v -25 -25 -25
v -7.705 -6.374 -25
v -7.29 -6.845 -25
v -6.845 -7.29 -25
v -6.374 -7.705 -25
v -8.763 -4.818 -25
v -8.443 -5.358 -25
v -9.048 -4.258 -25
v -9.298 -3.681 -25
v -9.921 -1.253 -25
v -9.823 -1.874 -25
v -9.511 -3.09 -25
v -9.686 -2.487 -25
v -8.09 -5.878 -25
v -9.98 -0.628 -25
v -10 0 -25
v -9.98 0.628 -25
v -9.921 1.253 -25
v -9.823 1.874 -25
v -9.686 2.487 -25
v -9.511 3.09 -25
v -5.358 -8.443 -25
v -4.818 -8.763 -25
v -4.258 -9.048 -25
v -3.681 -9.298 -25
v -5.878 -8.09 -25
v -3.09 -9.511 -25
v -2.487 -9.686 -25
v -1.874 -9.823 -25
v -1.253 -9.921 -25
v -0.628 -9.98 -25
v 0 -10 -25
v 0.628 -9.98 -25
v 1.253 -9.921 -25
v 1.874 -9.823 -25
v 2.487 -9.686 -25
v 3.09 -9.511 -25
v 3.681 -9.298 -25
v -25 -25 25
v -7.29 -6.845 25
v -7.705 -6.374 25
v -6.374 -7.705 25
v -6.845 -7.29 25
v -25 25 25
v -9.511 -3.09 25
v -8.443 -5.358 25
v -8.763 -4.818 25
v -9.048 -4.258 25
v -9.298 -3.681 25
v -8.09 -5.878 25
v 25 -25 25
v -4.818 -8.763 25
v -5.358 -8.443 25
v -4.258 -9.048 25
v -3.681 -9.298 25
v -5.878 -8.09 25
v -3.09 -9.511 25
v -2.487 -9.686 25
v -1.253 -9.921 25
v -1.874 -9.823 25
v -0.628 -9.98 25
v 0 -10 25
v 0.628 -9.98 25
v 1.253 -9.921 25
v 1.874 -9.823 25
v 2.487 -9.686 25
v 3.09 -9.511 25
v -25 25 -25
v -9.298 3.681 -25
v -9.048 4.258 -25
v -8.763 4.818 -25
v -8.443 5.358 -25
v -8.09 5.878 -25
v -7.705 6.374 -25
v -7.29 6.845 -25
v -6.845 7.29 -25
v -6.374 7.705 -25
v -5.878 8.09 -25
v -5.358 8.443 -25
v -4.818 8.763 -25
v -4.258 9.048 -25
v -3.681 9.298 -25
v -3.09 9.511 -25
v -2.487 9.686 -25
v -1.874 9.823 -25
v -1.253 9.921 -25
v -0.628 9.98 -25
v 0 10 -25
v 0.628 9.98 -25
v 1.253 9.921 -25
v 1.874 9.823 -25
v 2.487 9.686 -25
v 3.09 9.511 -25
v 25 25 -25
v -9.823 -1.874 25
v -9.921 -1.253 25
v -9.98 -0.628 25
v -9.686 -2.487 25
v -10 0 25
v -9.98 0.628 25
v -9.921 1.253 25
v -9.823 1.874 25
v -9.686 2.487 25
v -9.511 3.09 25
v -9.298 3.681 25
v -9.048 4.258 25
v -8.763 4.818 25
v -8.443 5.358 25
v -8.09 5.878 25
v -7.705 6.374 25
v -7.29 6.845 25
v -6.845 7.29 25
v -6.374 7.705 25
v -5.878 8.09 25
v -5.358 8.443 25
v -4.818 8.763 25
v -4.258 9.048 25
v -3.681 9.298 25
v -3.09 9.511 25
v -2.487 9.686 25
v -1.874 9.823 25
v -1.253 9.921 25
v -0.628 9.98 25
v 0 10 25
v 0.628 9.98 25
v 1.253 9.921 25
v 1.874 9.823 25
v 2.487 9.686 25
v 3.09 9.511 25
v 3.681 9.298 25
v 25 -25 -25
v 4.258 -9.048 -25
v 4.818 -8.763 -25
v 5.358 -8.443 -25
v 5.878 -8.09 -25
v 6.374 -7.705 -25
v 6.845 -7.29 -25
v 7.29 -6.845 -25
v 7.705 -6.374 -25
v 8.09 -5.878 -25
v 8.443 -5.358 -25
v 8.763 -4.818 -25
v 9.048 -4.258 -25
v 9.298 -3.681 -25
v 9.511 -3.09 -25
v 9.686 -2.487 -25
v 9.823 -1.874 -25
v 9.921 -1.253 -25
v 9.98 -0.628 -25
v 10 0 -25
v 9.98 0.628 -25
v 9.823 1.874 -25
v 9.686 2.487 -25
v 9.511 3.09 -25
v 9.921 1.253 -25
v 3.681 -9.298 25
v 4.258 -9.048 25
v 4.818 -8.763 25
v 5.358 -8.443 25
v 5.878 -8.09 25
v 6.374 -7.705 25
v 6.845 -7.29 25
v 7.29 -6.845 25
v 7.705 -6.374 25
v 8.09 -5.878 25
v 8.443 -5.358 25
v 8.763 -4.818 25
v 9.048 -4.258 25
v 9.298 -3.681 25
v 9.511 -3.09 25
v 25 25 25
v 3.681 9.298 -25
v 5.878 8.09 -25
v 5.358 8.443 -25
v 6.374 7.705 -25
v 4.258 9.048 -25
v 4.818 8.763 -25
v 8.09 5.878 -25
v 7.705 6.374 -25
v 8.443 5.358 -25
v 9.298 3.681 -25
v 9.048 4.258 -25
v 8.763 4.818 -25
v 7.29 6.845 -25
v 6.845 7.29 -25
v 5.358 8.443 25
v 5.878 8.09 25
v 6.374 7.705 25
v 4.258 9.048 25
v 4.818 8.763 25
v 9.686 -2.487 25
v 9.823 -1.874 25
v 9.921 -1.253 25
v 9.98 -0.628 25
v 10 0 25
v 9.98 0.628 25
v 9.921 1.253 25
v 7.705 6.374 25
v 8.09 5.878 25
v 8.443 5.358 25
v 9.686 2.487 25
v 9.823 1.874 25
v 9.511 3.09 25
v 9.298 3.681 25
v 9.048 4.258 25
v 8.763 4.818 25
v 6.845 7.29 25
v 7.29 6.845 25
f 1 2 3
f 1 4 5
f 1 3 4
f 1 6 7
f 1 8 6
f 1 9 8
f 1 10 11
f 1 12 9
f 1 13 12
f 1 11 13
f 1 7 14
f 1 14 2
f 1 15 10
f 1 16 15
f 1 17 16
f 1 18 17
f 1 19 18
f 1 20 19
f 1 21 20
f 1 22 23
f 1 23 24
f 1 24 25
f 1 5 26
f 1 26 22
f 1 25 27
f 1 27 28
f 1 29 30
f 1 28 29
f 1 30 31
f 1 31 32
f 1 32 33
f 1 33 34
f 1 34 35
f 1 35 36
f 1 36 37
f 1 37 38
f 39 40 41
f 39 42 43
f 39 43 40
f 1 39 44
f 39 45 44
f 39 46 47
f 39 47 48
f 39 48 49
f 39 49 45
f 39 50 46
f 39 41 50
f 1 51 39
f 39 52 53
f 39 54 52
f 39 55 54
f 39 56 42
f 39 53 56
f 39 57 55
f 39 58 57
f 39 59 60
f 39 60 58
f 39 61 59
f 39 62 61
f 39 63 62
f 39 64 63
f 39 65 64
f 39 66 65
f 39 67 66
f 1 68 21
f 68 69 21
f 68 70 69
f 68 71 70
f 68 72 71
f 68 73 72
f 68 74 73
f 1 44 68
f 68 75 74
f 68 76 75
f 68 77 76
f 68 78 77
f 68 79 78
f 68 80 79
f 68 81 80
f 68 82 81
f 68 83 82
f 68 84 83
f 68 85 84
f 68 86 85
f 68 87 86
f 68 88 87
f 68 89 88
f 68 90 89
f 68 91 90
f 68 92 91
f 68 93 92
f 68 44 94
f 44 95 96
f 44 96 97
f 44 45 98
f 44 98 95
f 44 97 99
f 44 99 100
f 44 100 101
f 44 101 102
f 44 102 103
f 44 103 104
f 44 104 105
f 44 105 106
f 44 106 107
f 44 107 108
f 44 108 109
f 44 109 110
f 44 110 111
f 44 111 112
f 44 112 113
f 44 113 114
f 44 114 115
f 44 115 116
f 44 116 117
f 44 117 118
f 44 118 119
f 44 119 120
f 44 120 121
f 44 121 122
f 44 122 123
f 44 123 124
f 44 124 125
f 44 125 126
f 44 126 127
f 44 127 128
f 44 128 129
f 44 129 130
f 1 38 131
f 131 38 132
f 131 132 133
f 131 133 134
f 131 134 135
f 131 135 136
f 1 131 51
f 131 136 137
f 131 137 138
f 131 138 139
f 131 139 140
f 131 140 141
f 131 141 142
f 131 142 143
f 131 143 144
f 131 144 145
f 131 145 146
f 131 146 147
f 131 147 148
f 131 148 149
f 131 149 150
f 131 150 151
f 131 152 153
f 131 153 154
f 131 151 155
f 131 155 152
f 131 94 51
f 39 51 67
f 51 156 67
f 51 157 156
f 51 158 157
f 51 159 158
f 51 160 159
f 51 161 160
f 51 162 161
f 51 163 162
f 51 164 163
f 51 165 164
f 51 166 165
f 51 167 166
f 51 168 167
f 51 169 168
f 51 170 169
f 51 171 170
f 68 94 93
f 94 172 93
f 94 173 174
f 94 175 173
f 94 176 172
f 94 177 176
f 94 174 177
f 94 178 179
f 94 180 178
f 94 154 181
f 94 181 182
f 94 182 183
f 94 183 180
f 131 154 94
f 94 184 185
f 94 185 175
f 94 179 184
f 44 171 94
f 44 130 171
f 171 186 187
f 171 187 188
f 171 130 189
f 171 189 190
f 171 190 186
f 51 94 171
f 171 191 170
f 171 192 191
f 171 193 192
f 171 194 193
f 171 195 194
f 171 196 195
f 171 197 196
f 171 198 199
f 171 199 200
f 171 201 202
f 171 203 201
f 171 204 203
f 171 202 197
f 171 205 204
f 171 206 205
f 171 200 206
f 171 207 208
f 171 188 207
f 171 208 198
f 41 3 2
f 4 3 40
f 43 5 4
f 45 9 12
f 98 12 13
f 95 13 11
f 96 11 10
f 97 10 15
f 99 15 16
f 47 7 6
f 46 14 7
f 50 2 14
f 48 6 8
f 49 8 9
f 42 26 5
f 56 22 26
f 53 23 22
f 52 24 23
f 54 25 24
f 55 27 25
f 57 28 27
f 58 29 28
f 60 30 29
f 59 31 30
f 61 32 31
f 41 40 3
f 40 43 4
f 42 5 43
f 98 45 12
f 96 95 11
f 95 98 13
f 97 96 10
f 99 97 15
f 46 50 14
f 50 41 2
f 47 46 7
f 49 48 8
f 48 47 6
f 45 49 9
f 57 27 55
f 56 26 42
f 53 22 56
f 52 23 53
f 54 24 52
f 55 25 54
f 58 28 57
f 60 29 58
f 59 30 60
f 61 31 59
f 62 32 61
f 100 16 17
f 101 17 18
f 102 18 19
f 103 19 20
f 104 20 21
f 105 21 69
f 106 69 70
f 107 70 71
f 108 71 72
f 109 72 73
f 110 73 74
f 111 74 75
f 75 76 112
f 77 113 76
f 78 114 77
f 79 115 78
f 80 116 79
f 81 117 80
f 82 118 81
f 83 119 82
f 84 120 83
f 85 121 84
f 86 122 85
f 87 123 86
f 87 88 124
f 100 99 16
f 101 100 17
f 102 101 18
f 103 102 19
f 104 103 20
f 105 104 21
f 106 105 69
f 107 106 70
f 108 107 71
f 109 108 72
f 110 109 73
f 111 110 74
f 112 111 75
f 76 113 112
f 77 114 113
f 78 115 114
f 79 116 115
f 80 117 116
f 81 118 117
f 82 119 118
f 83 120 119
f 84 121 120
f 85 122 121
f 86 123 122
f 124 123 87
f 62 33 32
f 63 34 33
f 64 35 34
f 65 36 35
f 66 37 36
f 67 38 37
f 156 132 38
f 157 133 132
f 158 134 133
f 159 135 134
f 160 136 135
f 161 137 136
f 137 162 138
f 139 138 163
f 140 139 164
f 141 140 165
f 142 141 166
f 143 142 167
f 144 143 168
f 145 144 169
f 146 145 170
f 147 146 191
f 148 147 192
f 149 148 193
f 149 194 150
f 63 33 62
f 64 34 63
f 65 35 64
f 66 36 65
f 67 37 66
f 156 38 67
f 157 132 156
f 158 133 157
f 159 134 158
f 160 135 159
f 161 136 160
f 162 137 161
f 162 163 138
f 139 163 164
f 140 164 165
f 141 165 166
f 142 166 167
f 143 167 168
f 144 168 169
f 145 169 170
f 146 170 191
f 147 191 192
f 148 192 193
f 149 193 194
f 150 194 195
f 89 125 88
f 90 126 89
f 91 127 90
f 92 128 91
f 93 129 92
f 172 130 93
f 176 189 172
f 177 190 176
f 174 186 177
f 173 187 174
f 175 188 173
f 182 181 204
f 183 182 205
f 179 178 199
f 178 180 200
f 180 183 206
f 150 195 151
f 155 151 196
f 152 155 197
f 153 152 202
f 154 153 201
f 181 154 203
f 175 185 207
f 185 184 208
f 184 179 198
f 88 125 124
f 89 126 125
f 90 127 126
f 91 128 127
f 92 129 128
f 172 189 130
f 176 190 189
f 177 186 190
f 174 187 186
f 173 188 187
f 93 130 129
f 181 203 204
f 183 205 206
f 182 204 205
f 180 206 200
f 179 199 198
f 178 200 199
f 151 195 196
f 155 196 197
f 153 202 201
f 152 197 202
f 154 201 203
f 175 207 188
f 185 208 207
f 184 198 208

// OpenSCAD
difference() {
    cube([50, 50, 50], center=true);
    cylinder(d=20, h=52, center=true, $fn=100);
}
